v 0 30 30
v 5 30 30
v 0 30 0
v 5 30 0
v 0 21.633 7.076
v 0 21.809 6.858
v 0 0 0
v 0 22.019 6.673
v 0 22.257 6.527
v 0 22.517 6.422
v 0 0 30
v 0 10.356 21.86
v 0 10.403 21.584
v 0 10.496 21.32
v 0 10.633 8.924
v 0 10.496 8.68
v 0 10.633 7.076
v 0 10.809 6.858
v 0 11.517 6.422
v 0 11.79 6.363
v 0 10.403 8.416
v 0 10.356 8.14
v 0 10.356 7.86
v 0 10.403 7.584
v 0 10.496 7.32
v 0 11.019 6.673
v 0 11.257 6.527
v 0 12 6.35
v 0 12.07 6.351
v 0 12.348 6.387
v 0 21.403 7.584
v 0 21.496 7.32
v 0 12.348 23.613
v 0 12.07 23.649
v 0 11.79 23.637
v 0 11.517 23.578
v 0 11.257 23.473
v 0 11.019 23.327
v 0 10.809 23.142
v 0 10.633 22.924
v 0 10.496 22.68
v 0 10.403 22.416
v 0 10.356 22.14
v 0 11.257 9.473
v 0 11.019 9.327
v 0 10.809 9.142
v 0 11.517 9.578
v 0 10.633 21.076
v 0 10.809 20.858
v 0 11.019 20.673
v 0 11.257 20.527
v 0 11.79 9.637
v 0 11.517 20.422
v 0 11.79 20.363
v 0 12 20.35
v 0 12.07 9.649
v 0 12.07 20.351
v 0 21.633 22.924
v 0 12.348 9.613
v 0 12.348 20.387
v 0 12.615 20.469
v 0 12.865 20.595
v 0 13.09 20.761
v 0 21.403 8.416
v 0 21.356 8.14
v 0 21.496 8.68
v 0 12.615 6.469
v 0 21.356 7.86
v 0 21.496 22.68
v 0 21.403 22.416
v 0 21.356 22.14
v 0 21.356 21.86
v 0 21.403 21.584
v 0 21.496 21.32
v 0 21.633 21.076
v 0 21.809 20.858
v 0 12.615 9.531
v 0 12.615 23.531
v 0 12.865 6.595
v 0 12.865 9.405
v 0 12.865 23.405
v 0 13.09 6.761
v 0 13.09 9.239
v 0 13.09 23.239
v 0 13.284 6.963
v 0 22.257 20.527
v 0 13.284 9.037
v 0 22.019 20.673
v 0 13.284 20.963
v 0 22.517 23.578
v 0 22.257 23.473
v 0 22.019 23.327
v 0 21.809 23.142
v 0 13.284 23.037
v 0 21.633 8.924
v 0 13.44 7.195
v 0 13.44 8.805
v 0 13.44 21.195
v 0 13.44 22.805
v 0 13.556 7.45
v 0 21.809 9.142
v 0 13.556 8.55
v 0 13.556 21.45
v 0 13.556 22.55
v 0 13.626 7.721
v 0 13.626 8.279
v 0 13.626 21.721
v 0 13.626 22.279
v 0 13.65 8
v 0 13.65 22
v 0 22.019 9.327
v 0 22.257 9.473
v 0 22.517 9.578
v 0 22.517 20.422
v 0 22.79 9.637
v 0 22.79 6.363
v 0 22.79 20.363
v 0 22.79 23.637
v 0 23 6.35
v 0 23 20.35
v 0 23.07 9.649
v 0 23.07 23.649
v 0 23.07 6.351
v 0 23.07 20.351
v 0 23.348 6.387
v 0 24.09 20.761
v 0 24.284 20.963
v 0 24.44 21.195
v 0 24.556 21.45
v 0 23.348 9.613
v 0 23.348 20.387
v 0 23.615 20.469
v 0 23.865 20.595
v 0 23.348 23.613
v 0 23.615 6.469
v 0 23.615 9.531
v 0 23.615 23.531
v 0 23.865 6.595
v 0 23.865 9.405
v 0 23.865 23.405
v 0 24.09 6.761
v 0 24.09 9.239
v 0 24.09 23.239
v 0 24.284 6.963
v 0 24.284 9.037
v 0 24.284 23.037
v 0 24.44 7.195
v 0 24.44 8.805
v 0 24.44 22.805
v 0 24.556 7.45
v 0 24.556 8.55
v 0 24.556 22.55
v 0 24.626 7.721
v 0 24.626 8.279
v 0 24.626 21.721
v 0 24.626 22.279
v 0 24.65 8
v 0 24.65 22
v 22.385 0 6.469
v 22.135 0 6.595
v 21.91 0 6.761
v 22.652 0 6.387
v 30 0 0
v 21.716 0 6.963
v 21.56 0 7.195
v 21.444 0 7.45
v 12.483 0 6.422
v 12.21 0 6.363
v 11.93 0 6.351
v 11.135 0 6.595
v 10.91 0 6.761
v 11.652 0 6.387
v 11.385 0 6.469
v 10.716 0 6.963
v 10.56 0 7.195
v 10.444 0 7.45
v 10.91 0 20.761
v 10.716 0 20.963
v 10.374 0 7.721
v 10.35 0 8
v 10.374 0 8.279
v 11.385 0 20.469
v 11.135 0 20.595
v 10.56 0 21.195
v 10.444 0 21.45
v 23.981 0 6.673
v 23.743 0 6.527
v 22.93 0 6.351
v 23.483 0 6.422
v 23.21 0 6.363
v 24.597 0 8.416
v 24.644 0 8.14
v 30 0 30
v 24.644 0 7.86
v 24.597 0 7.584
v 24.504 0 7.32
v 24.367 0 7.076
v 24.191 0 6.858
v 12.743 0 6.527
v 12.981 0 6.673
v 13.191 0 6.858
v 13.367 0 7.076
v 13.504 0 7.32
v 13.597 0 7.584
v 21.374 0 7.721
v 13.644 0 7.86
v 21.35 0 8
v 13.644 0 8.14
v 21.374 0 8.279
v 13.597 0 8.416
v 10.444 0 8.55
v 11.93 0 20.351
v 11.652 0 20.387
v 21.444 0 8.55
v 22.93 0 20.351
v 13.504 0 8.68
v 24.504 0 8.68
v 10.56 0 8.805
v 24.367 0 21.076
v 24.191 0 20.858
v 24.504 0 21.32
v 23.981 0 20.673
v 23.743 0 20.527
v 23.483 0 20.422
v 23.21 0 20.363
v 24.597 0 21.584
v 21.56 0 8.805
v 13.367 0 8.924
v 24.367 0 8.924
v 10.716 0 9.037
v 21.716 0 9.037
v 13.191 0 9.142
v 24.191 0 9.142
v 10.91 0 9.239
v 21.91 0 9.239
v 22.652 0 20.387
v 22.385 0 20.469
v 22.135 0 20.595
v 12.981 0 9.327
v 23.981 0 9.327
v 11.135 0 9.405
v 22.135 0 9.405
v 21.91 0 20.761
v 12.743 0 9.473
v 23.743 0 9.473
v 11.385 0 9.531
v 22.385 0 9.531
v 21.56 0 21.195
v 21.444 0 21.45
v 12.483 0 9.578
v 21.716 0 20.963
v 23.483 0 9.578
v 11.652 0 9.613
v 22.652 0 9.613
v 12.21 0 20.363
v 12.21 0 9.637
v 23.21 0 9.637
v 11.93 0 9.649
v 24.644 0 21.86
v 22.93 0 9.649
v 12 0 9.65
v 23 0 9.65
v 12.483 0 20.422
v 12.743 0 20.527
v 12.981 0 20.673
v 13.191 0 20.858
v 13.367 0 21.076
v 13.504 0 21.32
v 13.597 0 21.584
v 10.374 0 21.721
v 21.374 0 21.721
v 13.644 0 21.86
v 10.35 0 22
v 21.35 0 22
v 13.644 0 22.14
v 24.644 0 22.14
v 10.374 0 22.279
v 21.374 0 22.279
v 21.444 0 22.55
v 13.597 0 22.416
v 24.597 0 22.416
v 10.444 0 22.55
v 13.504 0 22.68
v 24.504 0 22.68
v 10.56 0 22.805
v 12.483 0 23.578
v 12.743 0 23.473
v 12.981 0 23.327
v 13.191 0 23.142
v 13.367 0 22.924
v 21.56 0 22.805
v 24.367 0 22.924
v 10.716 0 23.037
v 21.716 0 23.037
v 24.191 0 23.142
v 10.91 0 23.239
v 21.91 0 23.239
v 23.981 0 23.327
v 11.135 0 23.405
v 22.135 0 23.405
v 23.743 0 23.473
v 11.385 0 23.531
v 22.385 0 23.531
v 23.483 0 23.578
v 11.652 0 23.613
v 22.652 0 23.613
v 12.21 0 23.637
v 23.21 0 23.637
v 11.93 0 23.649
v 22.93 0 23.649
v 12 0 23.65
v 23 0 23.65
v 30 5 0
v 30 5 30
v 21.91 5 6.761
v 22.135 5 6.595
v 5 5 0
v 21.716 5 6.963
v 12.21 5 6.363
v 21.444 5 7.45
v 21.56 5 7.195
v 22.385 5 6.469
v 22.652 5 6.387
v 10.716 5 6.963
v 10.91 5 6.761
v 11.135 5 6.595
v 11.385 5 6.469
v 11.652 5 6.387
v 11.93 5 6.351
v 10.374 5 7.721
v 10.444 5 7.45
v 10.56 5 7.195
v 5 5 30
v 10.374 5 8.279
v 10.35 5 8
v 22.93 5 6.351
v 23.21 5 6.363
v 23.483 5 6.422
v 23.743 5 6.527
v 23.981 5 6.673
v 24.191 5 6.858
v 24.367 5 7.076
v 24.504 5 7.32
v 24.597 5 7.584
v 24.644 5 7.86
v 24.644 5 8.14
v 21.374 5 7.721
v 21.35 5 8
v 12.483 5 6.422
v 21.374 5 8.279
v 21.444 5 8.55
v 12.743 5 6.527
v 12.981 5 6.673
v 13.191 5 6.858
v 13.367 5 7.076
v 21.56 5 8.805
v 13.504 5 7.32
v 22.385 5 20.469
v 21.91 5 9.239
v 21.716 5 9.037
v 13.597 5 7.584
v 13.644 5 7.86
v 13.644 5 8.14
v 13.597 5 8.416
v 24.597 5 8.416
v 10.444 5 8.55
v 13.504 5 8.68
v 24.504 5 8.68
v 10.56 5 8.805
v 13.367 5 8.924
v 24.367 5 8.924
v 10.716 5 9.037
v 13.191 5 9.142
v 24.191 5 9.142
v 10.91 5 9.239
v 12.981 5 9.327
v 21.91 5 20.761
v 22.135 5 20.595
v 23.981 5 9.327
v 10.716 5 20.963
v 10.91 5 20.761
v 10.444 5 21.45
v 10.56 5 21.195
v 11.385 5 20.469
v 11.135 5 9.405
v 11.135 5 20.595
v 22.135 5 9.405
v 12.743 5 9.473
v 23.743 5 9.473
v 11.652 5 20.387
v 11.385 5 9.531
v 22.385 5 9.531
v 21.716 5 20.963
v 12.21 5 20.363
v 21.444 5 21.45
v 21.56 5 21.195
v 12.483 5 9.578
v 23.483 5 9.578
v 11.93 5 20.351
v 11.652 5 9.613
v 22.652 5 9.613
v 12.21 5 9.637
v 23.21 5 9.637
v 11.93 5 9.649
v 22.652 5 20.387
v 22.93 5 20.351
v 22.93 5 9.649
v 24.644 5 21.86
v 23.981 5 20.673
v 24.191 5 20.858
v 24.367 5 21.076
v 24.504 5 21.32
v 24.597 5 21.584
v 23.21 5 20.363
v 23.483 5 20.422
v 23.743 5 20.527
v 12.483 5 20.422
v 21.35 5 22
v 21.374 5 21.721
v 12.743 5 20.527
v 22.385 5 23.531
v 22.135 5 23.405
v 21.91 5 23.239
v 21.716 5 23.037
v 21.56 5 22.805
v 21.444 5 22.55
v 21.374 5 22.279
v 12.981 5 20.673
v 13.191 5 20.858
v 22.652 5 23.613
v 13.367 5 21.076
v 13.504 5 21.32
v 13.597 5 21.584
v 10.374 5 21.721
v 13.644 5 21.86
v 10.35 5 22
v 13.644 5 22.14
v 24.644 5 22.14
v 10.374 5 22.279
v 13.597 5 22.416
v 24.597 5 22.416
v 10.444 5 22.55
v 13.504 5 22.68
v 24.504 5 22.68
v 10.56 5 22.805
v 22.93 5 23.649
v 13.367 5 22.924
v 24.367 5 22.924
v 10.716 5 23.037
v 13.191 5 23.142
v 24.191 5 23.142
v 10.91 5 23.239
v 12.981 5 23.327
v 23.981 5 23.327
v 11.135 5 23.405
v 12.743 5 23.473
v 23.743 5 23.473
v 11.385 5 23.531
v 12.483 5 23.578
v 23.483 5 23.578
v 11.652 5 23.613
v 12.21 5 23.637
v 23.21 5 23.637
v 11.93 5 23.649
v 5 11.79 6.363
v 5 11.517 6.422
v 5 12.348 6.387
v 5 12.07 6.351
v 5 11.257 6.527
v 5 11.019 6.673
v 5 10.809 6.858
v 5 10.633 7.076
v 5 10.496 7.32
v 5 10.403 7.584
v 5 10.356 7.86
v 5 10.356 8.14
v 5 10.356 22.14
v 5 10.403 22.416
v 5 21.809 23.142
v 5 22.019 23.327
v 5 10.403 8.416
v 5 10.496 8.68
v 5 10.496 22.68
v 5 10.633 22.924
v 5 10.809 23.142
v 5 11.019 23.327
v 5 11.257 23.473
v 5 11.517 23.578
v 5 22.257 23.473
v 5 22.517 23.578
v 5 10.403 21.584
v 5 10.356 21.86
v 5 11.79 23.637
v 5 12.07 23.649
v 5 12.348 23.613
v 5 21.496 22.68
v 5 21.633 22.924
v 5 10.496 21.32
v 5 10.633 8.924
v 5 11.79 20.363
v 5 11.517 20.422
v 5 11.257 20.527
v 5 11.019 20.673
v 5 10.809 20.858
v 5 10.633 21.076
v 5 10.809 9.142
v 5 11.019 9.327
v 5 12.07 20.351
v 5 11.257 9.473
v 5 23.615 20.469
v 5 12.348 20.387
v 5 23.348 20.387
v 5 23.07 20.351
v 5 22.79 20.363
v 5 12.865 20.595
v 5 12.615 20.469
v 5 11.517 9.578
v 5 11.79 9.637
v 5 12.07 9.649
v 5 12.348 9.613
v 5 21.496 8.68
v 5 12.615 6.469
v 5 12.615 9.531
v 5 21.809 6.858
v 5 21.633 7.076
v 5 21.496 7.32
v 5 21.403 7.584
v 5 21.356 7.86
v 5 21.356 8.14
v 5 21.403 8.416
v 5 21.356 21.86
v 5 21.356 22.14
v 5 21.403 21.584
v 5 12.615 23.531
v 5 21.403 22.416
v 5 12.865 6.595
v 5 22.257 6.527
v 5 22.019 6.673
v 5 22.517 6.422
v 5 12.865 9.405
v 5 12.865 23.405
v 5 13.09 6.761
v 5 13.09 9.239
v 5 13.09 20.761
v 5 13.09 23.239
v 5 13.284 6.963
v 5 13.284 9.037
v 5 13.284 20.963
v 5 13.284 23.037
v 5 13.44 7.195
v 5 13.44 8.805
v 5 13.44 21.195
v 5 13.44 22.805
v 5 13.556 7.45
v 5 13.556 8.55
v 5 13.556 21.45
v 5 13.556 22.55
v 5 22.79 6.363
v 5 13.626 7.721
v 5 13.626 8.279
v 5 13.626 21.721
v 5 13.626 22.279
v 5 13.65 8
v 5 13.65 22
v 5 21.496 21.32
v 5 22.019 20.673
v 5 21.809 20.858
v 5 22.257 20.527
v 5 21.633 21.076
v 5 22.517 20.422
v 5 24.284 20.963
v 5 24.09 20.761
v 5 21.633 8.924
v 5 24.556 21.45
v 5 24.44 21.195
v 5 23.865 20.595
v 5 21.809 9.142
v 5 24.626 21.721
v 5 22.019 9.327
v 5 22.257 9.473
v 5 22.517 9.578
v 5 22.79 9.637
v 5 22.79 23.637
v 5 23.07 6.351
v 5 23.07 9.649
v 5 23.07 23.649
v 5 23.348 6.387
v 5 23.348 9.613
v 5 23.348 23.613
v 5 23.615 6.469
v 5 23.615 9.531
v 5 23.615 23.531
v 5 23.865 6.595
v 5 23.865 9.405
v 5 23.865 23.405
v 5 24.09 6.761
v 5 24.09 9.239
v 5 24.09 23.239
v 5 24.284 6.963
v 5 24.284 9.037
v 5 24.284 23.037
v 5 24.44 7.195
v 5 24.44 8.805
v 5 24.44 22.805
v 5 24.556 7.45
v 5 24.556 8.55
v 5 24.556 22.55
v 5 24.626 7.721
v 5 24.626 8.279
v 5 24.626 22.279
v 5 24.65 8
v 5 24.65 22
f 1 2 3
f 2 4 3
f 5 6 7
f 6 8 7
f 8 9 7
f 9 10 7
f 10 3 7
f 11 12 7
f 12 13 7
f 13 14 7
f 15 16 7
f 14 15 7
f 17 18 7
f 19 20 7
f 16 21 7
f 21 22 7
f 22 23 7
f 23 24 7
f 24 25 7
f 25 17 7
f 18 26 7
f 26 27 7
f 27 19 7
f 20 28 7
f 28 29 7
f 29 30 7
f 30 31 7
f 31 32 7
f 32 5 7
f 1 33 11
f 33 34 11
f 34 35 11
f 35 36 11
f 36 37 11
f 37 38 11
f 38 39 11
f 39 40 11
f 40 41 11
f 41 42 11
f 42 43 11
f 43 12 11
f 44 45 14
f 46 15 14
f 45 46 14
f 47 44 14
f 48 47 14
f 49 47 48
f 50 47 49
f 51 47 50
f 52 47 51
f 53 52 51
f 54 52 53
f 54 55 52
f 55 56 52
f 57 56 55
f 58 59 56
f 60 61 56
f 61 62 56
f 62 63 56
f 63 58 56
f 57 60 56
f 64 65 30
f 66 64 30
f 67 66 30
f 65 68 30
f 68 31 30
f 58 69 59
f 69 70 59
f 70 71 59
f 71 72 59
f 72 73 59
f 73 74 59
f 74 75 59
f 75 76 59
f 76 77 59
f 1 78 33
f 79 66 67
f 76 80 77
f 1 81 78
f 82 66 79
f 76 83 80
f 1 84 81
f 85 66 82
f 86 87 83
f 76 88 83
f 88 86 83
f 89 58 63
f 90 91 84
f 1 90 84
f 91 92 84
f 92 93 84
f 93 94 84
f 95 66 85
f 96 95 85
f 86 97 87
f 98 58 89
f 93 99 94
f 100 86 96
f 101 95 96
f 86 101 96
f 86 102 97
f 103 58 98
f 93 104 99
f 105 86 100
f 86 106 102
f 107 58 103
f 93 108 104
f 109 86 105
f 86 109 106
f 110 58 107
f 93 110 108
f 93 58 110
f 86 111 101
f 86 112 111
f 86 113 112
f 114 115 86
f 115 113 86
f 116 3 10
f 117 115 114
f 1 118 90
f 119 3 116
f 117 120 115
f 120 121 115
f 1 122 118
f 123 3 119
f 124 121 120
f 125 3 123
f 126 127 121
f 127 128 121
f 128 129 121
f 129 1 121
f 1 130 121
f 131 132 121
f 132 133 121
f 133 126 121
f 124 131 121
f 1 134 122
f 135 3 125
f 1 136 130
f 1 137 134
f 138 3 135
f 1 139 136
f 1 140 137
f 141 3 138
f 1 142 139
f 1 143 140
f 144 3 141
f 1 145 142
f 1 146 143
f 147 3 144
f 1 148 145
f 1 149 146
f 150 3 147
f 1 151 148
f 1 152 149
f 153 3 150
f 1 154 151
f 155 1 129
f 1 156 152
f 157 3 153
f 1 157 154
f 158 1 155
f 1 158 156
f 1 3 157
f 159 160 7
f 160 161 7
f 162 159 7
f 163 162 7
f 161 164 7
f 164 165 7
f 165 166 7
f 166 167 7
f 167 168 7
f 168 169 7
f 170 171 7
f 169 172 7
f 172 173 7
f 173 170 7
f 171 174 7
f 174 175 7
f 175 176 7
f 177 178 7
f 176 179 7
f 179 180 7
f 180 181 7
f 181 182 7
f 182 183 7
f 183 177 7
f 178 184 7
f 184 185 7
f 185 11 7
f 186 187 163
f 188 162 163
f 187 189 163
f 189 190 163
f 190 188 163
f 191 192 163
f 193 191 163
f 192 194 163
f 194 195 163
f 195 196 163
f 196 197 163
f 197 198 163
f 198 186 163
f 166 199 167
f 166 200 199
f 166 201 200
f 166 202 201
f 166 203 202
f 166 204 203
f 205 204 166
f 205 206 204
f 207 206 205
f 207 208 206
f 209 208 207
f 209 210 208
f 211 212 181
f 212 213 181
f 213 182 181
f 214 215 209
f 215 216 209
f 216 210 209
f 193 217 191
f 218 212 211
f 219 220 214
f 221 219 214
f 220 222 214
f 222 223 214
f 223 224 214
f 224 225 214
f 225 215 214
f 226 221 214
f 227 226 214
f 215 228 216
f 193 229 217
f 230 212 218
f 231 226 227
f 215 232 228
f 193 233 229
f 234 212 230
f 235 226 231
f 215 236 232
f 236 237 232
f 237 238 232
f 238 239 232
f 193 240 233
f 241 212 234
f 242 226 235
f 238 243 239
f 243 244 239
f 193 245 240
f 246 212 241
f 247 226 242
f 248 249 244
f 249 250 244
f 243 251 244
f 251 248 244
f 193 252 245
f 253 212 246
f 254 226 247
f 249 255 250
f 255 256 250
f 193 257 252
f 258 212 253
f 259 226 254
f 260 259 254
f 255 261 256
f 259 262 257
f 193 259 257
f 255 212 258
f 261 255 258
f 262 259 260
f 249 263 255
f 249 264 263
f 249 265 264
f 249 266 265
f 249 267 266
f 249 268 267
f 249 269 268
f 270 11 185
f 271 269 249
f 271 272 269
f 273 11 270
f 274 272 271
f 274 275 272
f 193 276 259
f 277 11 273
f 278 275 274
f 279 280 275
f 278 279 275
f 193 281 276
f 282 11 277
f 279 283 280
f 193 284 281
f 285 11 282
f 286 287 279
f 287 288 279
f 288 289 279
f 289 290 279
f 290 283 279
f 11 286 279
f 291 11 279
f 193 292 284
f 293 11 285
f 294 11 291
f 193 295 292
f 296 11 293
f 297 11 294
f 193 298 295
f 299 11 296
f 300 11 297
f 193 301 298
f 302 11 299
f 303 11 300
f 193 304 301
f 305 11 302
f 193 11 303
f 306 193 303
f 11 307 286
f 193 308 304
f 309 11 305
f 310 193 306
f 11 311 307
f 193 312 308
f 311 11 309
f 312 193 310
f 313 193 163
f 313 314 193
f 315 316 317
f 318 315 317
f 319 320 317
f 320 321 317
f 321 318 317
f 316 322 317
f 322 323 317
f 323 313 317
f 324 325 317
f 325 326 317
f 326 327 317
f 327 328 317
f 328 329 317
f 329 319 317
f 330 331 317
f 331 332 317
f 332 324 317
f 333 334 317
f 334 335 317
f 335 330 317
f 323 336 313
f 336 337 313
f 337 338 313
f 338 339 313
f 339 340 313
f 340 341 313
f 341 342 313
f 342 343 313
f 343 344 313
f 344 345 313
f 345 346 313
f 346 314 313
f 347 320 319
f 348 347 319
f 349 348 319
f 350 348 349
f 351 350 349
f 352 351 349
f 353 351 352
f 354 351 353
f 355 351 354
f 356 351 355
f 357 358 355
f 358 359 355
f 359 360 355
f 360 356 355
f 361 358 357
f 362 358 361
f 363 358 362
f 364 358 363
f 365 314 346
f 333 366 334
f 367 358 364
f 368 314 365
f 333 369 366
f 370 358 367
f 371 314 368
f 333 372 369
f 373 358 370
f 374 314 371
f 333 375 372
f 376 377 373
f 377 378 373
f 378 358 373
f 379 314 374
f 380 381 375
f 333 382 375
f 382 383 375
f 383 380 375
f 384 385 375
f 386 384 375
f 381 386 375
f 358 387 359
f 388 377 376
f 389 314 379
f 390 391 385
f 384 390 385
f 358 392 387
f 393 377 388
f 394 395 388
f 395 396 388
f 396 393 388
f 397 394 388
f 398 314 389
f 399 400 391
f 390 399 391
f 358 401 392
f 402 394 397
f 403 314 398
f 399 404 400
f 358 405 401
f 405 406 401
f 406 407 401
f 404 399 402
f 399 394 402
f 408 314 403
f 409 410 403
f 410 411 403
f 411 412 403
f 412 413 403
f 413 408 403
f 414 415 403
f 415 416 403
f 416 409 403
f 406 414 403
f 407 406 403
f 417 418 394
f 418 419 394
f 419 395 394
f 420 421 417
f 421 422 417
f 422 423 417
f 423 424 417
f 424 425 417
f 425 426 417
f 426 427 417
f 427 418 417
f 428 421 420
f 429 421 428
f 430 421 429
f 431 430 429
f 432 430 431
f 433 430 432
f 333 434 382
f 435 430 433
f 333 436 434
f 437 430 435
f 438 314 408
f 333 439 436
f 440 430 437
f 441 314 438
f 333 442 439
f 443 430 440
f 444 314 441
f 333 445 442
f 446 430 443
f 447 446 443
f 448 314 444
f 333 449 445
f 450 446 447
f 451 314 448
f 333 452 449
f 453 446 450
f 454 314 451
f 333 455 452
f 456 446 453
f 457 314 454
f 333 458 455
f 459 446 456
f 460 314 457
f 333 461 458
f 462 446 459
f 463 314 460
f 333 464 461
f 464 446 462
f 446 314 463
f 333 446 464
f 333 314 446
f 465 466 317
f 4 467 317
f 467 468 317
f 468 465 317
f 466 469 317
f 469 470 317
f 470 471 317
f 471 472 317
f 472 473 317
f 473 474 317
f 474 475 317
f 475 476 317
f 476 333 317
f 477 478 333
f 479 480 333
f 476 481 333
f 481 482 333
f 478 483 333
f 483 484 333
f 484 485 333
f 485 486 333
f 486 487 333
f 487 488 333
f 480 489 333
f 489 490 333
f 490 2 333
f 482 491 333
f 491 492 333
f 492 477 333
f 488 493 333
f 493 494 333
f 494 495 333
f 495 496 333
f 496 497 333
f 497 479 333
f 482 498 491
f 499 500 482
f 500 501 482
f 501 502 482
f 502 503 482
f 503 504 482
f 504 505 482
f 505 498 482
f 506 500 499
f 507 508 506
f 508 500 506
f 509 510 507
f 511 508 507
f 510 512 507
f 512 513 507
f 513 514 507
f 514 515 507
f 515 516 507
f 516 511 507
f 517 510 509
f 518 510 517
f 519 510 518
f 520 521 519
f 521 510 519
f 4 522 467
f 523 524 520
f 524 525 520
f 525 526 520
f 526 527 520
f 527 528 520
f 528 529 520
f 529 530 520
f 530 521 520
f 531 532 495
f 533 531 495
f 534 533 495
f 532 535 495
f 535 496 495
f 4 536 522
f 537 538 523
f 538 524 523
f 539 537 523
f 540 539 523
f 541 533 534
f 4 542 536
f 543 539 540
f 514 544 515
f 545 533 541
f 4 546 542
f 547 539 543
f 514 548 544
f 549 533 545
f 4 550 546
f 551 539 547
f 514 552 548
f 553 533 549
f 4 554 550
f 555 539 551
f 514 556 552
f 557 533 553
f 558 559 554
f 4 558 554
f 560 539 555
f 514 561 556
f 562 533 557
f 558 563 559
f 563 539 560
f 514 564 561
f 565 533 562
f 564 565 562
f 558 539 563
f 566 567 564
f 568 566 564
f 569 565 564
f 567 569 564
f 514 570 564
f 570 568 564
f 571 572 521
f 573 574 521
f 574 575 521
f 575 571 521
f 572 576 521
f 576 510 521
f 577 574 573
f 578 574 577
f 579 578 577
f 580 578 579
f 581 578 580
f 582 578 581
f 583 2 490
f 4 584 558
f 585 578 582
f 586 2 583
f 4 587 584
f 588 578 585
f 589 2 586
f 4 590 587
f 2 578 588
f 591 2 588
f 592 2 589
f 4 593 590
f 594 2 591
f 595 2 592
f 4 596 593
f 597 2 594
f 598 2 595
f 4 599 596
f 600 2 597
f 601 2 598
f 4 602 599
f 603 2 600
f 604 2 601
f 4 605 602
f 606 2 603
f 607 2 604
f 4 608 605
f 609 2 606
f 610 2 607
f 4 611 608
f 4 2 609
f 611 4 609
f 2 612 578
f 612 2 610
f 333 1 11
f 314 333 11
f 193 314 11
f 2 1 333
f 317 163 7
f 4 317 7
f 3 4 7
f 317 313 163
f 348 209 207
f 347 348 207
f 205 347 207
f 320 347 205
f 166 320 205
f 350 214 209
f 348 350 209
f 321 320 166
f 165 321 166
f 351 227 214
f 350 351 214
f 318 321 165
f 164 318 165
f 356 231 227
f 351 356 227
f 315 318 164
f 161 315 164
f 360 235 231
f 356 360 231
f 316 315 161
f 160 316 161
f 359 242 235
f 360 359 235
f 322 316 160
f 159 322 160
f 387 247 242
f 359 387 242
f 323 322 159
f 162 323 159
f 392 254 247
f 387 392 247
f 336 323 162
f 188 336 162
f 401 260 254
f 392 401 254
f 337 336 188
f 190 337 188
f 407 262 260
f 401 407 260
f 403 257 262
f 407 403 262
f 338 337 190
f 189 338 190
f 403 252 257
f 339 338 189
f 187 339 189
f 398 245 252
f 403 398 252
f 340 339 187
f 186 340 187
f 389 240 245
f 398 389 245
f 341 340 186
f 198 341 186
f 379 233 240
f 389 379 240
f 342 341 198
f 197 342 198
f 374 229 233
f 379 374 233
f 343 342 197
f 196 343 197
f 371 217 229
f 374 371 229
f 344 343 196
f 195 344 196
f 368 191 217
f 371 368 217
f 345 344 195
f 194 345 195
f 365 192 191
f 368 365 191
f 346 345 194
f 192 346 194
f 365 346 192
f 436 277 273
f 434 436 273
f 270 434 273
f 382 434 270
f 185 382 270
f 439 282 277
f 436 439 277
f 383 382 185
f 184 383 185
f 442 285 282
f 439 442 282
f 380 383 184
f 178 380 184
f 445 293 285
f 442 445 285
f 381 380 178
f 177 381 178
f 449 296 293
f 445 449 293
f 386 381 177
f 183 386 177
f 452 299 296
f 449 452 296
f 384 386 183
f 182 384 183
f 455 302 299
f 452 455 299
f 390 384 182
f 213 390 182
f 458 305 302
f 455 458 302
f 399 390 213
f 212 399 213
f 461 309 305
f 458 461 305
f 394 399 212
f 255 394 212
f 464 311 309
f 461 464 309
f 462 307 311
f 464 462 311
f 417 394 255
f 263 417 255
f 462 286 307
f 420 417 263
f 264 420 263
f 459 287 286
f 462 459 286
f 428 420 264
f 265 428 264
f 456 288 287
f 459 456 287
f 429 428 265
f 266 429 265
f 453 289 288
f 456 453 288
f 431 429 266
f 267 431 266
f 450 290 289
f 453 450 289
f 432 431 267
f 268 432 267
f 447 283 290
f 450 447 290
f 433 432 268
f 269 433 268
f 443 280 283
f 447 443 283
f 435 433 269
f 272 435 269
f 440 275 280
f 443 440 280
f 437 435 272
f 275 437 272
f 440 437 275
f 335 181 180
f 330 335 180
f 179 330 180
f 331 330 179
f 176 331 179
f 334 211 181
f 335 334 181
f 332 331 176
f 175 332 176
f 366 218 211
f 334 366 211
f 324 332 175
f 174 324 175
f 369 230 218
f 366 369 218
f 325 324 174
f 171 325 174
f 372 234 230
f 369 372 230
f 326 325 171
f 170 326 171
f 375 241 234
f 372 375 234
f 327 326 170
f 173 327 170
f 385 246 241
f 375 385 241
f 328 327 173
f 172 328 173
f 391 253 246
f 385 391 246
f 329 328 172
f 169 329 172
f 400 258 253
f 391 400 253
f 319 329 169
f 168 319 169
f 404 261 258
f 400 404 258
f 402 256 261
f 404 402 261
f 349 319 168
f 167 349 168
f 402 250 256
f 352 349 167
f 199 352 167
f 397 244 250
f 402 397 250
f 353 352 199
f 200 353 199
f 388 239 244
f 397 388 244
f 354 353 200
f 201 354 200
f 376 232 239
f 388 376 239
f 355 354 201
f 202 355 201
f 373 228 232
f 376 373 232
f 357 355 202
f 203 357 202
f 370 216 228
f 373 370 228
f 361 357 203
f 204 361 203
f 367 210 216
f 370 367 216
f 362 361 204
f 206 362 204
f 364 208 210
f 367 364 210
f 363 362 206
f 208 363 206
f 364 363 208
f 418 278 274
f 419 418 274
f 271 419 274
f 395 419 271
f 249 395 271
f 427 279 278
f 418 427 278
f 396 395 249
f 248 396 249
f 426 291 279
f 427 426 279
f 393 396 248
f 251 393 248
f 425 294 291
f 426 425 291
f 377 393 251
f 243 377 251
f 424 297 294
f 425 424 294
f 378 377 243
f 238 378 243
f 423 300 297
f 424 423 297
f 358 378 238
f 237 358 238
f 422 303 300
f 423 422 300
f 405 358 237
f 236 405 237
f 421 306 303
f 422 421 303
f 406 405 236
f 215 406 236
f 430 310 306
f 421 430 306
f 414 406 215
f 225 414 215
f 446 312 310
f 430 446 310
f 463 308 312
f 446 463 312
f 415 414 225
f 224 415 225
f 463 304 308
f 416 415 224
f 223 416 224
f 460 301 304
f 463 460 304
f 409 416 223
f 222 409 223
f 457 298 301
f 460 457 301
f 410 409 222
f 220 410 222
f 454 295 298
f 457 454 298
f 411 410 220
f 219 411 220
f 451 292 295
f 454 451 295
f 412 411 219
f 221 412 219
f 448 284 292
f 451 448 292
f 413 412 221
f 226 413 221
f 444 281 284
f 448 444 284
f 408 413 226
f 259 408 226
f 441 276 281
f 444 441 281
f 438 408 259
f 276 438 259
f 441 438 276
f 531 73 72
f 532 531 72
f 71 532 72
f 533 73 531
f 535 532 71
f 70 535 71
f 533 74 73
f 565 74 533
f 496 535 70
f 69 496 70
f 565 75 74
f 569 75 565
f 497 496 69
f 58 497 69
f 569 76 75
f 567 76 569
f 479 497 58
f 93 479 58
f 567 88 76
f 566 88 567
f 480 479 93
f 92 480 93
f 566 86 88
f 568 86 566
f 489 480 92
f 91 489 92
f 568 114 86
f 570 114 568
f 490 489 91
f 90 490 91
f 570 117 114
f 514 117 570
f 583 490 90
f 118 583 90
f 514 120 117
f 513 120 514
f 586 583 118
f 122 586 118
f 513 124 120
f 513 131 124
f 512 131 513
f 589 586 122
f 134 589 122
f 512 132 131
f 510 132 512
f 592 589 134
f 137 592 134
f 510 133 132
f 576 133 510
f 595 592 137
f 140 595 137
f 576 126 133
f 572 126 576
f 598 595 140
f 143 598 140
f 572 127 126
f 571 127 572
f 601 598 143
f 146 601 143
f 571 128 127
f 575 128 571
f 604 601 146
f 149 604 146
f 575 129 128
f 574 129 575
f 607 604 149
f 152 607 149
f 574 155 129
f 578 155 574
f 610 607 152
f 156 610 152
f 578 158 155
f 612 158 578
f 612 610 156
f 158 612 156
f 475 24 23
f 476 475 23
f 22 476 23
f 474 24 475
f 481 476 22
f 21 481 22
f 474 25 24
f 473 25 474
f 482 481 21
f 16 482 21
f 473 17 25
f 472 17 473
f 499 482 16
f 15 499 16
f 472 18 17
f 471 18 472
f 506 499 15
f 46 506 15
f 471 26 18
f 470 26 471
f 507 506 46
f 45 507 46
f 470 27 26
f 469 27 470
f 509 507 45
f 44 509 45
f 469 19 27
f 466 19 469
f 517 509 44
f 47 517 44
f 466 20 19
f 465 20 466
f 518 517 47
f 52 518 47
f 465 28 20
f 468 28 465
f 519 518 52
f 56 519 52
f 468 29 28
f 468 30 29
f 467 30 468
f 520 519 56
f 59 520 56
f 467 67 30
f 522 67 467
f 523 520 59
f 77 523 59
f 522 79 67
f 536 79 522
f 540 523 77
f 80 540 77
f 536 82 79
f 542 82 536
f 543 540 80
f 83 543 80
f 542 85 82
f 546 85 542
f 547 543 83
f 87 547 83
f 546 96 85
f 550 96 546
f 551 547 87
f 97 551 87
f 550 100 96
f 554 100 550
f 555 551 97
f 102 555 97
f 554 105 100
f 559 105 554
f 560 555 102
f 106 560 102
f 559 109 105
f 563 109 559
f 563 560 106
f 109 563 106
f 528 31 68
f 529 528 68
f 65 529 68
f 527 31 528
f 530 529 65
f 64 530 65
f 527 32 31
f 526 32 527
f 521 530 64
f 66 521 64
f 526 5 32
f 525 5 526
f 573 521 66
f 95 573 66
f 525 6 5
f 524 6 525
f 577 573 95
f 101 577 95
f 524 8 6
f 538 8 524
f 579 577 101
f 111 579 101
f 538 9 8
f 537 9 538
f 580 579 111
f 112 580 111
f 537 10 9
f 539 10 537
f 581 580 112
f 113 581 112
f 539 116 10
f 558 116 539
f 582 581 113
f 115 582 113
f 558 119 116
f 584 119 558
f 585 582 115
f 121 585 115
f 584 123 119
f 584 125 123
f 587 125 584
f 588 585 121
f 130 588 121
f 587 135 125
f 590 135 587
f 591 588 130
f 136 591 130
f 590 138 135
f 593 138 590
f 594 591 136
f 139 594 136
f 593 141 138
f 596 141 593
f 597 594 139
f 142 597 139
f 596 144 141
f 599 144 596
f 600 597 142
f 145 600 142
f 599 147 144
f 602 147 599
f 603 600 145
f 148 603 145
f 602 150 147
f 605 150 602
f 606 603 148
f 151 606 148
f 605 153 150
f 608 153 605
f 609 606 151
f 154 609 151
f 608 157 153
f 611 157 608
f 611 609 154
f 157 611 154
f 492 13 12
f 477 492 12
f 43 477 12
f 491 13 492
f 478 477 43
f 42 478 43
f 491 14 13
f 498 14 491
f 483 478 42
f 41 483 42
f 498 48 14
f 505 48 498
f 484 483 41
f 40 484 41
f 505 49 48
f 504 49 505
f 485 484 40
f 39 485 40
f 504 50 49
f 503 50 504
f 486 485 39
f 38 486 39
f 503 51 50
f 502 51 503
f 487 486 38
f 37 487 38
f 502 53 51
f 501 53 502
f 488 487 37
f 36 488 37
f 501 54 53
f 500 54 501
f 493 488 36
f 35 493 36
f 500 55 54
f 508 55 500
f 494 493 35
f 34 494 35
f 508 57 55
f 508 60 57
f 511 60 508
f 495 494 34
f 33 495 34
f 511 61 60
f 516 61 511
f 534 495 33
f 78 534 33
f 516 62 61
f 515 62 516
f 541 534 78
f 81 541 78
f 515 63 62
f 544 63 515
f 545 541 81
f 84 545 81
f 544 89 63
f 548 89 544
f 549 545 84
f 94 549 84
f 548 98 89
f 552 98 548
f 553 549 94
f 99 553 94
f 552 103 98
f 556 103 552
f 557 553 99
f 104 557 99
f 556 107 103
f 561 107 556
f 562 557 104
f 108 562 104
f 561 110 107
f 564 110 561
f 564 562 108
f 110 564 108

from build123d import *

# Parameters (mm, degrees)
EXTRUDE_1_DEPTH     = 30
SKETCH_2_R          = 1.65
CUT_EXTRUDE_1_DEPTH = 40
SKETCH_3_R          = 1.65
CUT_EXTRUDE_2_DEPTH = 40


with BuildPart() as part:
    # 草图1 → 凸台-拉伸1 (new body)
    with BuildSketch(Plane.XY):
        Polygon((0, 30), (0, 0), (30, 0), (30, 5), (5, 5), (5, 30), align=None)
    extrude(amount=EXTRUDE_1_DEPTH)

    # 草图2 → 切除-拉伸1 (cut)
    with BuildSketch(Plane(origin=(0, 5, 0), x_dir=(1, 0, 0), z_dir=(0, 1, 0))):
        with Locations(Location((23, -8, 0), (0, 0, 180))):
            Circle(SKETCH_2_R)
        with Locations(Location((23, -22, 0), (0, 0, 180))):
            Circle(SKETCH_2_R)
        with Locations(Location((12, -8, 0), (0, 0, 180))):
            Circle(SKETCH_2_R)
        with Locations(Location((12, -22, 0), (0, 0, 180))):
            Circle(SKETCH_2_R)
    extrude(amount=-CUT_EXTRUDE_1_DEPTH, mode=Mode.SUBTRACT)

    # 草图3 → 切除-拉伸2 (cut)
    with BuildSketch(Plane(origin=(5, 0, 0), x_dir=(0, 0, -1), z_dir=(1, 0, 0))):
        with Locations(Location((-22, 23, 0), (0, 0, 90))):
            Circle(SKETCH_3_R)
        with Locations(Location((-22, 12, 0), (0, 0, 90))):
            Circle(SKETCH_3_R)
        with Locations(Location((-8, 23, 0), (0, 0, 90))):
            Circle(SKETCH_3_R)
        with Locations(Location((-8, 12, 0), (0, 0, 90))):
            Circle(SKETCH_3_R)
    extrude(amount=-CUT_EXTRUDE_2_DEPTH, mode=Mode.SUBTRACT)


solid = part.part
